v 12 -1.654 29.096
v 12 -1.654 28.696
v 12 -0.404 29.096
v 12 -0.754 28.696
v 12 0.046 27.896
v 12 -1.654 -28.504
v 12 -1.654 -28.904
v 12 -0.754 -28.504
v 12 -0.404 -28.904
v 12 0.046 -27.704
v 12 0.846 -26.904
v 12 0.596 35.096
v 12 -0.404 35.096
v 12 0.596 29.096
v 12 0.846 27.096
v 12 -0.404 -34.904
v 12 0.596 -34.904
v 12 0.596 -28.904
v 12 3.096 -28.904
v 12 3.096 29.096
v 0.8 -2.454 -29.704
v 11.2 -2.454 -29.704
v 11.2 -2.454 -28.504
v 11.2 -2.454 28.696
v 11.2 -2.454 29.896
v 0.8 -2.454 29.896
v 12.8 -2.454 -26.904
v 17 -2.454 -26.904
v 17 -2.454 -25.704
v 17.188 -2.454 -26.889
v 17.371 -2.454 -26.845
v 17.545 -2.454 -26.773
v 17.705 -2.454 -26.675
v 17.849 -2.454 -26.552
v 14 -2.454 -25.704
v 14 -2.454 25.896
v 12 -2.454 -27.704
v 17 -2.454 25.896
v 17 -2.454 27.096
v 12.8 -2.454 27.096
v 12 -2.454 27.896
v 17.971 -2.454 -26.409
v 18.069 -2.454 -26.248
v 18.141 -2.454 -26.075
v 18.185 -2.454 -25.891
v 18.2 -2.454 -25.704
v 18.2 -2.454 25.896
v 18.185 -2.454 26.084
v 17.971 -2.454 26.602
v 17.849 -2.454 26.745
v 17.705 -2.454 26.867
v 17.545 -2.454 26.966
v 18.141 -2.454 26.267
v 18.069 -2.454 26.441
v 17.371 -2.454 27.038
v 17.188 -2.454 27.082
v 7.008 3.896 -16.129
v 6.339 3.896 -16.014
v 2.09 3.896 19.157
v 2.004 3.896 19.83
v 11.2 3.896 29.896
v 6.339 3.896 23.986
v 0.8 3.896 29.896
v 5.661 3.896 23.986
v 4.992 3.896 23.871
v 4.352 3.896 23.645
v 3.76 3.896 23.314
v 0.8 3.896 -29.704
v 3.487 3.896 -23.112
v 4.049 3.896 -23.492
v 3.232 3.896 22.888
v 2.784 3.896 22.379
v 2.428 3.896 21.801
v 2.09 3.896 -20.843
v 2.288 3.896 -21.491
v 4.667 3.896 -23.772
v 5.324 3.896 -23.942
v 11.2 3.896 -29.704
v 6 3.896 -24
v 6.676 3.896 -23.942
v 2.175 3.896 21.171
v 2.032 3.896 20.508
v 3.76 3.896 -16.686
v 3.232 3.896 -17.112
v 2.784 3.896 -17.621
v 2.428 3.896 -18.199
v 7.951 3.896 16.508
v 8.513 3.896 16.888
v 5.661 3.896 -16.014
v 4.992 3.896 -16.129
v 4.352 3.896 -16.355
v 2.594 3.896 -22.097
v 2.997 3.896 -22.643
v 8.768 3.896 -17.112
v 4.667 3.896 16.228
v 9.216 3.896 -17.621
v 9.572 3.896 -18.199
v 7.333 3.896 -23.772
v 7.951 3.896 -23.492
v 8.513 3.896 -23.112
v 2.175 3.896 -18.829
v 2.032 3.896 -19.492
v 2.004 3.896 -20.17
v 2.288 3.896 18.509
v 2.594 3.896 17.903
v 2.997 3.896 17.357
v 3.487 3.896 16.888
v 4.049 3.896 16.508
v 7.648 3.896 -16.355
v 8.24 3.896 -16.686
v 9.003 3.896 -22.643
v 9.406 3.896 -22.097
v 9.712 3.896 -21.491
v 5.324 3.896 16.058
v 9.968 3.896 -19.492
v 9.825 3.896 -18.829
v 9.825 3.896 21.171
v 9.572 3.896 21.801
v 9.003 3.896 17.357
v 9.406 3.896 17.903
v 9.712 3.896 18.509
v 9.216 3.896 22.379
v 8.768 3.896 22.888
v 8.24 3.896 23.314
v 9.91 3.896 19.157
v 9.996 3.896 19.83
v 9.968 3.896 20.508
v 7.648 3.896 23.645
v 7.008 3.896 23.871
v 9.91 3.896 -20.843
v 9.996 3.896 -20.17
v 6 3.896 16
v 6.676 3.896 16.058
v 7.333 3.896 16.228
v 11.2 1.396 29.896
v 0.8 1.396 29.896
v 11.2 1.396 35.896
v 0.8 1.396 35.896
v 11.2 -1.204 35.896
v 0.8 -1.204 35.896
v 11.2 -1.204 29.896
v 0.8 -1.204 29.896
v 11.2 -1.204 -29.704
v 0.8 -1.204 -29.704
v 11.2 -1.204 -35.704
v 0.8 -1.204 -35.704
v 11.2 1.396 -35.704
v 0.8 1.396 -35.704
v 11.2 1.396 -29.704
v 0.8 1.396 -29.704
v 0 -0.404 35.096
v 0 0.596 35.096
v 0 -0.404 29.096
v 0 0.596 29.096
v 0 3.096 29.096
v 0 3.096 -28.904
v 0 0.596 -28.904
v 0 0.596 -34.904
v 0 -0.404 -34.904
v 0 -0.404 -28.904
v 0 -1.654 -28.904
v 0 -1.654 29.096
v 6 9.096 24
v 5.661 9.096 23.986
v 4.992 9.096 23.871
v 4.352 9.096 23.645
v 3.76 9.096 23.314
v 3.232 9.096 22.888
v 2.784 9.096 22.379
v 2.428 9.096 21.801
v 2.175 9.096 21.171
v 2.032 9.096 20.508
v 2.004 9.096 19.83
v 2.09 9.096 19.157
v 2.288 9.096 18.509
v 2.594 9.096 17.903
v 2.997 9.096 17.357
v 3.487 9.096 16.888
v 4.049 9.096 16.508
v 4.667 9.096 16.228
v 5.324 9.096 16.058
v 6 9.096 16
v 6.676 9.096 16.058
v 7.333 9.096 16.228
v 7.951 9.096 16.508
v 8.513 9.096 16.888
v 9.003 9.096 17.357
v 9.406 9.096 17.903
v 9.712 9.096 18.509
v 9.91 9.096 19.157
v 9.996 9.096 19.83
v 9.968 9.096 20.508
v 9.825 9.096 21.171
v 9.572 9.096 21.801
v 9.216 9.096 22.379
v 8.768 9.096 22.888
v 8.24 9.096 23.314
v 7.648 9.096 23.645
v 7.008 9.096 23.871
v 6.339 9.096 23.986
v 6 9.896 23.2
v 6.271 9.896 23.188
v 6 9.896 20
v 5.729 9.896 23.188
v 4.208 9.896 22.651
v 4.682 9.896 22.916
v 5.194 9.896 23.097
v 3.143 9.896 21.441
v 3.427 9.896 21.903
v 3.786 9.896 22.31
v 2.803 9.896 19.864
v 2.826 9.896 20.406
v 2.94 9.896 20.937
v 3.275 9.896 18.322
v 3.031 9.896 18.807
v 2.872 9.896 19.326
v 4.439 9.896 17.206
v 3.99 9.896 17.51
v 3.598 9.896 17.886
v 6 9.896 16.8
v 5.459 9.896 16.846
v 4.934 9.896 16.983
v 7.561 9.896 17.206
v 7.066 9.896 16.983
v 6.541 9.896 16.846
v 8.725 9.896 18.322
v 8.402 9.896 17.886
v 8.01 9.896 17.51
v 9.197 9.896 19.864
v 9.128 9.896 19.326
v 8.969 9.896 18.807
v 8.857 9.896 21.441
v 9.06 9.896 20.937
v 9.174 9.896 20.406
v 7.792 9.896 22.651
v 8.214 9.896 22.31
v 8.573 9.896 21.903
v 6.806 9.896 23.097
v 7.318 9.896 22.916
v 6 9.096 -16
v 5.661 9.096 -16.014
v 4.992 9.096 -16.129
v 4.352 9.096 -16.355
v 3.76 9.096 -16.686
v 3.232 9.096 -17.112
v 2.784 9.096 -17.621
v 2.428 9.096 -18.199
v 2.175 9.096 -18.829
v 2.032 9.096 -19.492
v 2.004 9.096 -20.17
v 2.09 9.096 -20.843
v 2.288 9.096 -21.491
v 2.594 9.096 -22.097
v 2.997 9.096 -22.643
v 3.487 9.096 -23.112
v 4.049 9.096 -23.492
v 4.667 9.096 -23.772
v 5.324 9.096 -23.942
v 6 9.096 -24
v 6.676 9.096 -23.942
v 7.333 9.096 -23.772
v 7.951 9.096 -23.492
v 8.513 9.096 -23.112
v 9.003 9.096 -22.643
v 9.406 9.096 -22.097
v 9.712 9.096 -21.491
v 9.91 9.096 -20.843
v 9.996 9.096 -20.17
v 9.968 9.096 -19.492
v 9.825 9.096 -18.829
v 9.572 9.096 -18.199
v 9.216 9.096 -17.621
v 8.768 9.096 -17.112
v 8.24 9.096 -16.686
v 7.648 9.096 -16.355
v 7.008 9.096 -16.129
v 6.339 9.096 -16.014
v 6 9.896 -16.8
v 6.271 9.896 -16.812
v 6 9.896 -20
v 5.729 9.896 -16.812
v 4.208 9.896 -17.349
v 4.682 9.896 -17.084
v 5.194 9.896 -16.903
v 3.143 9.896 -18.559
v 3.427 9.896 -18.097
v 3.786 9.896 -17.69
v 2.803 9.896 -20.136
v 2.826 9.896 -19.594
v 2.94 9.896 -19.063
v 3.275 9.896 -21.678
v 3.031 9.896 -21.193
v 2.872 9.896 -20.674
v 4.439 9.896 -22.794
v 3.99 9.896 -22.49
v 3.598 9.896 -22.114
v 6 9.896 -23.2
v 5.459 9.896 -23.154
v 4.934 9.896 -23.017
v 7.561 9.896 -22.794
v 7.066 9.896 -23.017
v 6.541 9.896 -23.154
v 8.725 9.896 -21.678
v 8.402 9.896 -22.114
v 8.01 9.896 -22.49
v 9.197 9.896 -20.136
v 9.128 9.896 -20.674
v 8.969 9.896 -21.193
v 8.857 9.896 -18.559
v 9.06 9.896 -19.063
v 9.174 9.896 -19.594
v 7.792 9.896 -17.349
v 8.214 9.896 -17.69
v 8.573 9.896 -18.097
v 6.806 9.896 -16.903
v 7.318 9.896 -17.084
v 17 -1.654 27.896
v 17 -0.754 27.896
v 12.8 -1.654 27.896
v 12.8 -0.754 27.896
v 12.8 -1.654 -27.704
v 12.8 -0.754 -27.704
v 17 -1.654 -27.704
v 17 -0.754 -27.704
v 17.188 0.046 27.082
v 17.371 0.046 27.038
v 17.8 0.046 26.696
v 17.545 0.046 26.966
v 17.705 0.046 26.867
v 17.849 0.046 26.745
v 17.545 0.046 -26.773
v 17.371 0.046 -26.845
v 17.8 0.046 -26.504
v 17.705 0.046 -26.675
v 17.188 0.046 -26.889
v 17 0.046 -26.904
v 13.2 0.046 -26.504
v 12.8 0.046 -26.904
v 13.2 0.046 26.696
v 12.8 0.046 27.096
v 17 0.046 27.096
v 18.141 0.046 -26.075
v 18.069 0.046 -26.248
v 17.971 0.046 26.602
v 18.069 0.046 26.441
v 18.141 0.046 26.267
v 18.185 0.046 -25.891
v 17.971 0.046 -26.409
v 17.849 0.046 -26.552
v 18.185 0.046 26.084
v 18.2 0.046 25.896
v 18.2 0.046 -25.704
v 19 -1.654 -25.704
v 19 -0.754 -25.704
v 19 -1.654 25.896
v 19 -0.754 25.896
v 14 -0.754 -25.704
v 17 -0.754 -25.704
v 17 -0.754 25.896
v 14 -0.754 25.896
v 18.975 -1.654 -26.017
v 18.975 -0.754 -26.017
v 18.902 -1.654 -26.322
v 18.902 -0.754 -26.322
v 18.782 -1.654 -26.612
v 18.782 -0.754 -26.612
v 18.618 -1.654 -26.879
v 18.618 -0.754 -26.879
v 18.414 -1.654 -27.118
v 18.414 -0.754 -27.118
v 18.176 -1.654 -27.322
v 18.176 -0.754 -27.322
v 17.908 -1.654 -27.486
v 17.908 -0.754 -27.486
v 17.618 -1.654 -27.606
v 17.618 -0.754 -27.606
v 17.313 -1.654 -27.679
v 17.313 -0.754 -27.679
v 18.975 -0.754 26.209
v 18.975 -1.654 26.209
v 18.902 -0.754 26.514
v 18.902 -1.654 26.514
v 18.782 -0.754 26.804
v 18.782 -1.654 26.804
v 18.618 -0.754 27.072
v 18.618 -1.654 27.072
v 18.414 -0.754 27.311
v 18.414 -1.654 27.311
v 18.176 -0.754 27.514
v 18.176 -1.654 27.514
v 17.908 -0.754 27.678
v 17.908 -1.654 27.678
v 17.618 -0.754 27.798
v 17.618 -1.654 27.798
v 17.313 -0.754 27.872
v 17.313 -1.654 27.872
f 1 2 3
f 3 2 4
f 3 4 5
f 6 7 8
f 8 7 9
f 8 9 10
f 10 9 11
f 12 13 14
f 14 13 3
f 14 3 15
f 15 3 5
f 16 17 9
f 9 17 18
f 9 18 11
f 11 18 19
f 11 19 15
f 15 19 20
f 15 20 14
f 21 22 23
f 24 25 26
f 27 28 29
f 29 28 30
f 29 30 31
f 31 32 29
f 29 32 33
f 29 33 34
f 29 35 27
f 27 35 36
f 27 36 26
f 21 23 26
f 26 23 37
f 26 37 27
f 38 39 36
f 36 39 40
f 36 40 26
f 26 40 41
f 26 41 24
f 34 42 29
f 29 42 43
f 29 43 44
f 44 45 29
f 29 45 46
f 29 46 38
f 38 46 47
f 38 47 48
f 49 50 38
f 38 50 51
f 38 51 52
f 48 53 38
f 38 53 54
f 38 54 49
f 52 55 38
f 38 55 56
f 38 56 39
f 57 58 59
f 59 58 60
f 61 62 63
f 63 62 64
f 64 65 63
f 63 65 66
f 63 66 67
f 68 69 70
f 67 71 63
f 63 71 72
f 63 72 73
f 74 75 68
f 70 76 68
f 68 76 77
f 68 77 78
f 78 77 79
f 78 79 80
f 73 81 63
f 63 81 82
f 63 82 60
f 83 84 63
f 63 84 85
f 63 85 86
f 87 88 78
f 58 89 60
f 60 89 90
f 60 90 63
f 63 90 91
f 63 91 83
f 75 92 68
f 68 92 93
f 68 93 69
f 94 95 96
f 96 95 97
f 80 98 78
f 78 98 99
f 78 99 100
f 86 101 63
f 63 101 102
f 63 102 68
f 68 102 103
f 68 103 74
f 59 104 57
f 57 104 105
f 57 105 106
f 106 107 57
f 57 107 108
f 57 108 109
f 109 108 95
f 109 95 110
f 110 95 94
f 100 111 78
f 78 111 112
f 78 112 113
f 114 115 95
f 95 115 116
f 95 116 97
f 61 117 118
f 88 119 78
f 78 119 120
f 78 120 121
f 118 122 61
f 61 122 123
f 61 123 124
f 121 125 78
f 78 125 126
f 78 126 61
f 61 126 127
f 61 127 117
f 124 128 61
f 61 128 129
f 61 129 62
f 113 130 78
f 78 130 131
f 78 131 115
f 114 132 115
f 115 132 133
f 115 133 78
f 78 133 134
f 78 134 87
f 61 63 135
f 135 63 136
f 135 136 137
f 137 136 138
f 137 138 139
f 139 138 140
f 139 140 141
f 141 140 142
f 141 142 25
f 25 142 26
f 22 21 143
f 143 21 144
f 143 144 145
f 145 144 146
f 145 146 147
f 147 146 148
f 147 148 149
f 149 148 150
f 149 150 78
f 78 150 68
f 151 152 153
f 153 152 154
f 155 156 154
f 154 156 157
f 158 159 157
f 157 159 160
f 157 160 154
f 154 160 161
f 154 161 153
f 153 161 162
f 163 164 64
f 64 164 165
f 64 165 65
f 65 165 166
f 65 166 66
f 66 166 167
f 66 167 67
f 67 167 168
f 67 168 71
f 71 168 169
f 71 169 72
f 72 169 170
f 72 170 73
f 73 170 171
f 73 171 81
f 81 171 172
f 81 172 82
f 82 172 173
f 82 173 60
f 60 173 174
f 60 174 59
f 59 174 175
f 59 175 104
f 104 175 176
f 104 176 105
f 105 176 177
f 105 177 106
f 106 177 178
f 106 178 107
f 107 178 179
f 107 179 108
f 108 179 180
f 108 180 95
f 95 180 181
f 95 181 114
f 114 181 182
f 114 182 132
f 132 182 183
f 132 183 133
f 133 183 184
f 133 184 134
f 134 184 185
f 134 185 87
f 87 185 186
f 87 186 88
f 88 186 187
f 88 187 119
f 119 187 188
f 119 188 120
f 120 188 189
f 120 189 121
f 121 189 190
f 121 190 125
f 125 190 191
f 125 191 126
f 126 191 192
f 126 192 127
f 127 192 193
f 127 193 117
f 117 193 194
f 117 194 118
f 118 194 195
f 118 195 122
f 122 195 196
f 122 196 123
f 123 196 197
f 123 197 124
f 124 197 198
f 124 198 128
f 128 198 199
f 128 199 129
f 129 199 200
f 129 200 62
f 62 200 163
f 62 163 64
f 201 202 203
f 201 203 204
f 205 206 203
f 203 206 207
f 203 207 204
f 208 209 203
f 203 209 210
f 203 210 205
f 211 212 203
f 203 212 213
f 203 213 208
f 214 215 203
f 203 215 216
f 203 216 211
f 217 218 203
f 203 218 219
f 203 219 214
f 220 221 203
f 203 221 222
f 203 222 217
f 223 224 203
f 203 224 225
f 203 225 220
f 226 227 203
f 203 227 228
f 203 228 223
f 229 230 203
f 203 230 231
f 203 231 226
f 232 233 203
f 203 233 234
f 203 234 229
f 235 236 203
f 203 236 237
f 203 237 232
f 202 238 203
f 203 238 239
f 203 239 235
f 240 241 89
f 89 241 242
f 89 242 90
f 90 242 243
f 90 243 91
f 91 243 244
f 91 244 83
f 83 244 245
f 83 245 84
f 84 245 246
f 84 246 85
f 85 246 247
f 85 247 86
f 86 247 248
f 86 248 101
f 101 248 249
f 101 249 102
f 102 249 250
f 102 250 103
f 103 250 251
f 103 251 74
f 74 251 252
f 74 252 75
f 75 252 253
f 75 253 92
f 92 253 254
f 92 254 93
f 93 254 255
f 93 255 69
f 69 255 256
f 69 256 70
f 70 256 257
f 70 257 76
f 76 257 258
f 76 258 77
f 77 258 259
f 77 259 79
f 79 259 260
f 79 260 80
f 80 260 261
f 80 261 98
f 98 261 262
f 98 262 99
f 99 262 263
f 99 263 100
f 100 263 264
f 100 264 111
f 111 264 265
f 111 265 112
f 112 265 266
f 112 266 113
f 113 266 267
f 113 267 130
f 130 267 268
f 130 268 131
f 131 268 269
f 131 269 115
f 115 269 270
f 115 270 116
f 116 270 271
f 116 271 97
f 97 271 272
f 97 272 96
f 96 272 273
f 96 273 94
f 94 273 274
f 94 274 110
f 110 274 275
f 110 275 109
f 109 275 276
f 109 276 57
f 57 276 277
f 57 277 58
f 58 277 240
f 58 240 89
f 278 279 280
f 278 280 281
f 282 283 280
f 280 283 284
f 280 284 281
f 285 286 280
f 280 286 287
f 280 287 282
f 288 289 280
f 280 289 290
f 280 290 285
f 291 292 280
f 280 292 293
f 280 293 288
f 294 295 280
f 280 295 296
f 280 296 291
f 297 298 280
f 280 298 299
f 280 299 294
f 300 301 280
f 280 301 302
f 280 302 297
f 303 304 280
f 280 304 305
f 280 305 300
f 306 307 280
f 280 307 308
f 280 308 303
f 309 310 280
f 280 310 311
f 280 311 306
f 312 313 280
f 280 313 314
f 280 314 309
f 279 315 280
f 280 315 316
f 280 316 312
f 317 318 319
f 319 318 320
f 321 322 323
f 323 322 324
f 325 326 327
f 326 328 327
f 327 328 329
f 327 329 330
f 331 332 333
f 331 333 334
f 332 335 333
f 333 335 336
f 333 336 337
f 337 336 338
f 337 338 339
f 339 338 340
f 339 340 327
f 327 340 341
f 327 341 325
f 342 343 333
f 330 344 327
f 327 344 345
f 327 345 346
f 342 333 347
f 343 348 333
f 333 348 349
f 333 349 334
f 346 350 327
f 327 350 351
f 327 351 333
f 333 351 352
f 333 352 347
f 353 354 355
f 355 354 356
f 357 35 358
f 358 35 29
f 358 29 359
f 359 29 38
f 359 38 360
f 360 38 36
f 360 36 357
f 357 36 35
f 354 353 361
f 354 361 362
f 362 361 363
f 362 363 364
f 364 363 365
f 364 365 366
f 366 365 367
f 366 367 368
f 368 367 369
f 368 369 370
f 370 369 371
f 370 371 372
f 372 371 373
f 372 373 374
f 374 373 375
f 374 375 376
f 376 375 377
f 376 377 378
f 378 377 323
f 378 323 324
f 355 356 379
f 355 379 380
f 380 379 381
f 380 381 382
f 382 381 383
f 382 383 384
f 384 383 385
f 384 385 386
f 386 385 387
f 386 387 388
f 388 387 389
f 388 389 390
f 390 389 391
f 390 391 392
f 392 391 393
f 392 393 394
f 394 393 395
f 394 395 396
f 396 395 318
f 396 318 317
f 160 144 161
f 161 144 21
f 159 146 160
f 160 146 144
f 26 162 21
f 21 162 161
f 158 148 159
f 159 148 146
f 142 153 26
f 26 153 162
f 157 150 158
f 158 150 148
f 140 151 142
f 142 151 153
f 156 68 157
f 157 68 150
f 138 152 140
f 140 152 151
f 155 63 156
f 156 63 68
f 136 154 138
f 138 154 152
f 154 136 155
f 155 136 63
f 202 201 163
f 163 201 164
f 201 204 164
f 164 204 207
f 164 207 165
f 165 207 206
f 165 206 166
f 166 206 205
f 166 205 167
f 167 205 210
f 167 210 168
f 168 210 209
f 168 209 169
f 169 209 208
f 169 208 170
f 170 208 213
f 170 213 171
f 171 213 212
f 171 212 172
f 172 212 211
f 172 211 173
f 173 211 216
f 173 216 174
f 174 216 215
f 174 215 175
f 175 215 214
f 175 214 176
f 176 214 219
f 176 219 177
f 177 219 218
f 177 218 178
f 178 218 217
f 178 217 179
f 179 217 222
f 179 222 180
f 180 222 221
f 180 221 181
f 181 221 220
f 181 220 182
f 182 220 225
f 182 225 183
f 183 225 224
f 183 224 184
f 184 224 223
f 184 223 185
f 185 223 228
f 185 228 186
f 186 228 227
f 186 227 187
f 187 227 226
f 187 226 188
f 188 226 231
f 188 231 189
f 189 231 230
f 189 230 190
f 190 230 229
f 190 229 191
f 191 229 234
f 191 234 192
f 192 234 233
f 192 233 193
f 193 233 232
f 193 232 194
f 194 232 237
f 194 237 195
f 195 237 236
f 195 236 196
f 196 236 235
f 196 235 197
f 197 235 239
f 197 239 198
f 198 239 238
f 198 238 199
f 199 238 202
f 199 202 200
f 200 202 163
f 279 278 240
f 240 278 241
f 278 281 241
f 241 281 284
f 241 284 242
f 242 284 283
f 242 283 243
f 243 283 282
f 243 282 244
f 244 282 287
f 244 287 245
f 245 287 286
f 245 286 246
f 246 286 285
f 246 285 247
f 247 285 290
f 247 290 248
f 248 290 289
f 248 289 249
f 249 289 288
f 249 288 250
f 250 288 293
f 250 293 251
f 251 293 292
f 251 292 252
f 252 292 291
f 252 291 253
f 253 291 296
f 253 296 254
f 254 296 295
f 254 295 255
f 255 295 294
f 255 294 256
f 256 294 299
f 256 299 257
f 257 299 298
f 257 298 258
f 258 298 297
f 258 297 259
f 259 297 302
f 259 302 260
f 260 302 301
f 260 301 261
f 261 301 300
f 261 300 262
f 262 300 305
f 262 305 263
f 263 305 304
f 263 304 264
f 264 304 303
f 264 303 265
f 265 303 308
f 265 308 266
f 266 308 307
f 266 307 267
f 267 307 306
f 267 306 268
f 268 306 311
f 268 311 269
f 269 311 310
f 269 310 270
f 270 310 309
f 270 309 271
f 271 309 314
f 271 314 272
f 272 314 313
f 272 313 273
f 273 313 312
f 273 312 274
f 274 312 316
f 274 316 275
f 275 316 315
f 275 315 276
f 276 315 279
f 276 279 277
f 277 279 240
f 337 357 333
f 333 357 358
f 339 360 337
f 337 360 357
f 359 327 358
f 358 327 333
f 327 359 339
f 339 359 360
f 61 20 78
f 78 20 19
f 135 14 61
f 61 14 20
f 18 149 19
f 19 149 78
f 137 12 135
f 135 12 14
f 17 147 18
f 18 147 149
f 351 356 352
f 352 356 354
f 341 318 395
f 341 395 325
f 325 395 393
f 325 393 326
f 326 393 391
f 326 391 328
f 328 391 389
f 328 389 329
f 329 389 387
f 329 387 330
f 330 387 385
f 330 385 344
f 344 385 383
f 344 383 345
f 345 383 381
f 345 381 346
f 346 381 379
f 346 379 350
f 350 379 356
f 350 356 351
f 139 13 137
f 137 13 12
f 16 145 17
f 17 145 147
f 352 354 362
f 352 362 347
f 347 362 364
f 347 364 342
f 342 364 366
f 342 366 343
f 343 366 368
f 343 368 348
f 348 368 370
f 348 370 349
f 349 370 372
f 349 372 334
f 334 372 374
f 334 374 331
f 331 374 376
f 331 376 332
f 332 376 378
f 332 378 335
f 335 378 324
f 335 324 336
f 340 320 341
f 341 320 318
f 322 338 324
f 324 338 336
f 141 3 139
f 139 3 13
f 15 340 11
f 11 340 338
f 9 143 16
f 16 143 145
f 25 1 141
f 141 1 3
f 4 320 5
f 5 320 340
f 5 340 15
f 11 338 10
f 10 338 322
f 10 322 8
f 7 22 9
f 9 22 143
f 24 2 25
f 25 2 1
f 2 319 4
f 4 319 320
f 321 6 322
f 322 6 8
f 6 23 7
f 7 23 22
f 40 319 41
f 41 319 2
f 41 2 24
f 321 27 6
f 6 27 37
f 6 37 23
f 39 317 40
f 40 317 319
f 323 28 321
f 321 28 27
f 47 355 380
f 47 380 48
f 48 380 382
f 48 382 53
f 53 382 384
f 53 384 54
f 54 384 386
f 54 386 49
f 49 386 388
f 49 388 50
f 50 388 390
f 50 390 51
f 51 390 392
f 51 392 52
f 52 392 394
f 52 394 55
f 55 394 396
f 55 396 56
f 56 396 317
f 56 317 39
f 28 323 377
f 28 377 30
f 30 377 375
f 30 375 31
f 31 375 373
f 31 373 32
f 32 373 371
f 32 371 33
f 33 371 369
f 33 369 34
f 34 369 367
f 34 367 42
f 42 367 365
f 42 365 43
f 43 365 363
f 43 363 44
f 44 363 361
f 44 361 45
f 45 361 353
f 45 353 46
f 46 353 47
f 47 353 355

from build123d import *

# Parameters (mm, degrees)
BOSS_EXTRUDE1_DEPTH = 12
SKETCH2_R           = 4
BOSS_EXTRUDE2_DEPTH = 6
SKETCH3_W           = 55.6
SKETCH3_H           = 2.5
BOSS_EXTRUDE3_DEPTH = 7
SKETCH5_W           = 3
SKETCH5_H           = 51.6
CUT_EXTRUDE1_DEPTH  = 42.791956142
FILLET3_R           = 2
CHAMFER1_SIZE       = 0.8
CHAMFER2_SIZE       = 0.8
CHAMFER3_SIZE       = 0.8


with BuildPart() as part:
    # Sketch1 → Boss-Extrude1 (new body)
    with BuildSketch(Plane(origin=(0, 0, 0), x_dir=(0, 0, -1), z_dir=(1, 0, 0))):
        Polygon((-29.89631037, 3.89631037), (-29.89631037, 1.39631037), (-35.89631037, 1.39631037), (-35.89631037, -1.20368963), (-29.89631037, -1.20368963), (-29.89631037, -2.45368963), (29.70368963, -2.45368963), (29.70368963, -1.20368963), (35.70368963, -1.20368963), (35.70368963, 1.39631037), (29.70368963, 1.39631037), (29.70368963, 3.89631037), align=None)
    extrude(amount=BOSS_EXTRUDE1_DEPTH)

    # Sketch2 → Boss-Extrude2 (add)
    with BuildSketch(Plane(origin=(0, 3.89631037, 0), x_dir=(1, 0, 0), z_dir=(0, 1, 0))):
        with Locations(Location((6, -20, 0), (0, 0, 90))):
            Circle(SKETCH2_R)
        with Locations(Location((6, 20, 0), (0, 0, 90))):
            Circle(SKETCH2_R)
    extrude(amount=BOSS_EXTRUDE2_DEPTH)

    # Sketch3 → Boss-Extrude3 (add)
    with BuildSketch(Plane(origin=(12, 0, 0), x_dir=(0, 0, -1), z_dir=(1, 0, 0))):
        with Locations((-0.09631037, -1.20368963)):
            Rectangle(SKETCH3_W, SKETCH3_H)
    extrude(amount=BOSS_EXTRUDE3_DEPTH)

    # Sketch5 → Cut-Extrude1 (cut, through all)
    with BuildSketch(Plane(origin=(0, 0.04631037, 0), x_dir=(1, 0, 0), z_dir=(0, 1, 0))):
        with Locations((15.5, -0.09631037)):
            Rectangle(SKETCH5_W, SKETCH5_H)
    extrude(amount=-CUT_EXTRUDE1_DEPTH, mode=Mode.SUBTRACT)

    # Fillet3
    fillet3_edges = [part.edges().sort_by_distance(p)[0] for p in [
        (19, -1.20368963, 27.89631037),
        (19, -1.20368963, -27.70368963),
    ]]
    fillet(fillet3_edges, radius=FILLET3_R)

    # Chamfer1
    chamfer1_edges = [part.edges().sort_by_distance(p)[0] for p in [
        (0, 2.64631037, -29.70368963),
        (0, 1.39631037, -32.70368963),
        (0, 0.09631037, -35.70368963),
        (0, -1.20368963, -32.70368963),
        (0, -1.82868963, -29.70368963),
        (0, -2.45368963, 0.09631037),
        (0, -1.82868963, 29.89631037),
        (0, -1.20368963, 32.89631037),
        (0, 0.09631037, 35.89631037),
        (0, 1.39631037, 32.89631037),
        (0, 2.64631037, 29.89631037),
        (0, 3.89631037, 0.09631037),
    ]]
    chamfer(chamfer1_edges, length=CHAMFER1_SIZE)

    # Chamfer2
    chamfer2_edges = [part.edges().sort_by_distance(p)[0] for p in [
        (6, 9.89631037, 24),
        (6, 9.89631037, -16),
    ]]
    chamfer(chamfer2_edges, length=CHAMFER2_SIZE)

    # Chamfer3
    chamfer3_edges = [part.edges().sort_by_distance(p)[0] for p in [
        (12, 1.39631037, 32.89631037),
        (12, 0.09631037, 35.89631037),
        (12, -1.20368963, 32.89631037),
        (12, -1.82868963, 29.89631037),
        (12, -2.45368963, 28.89631037),
        (12, -1.82868963, -29.70368963),
        (12, -1.20368963, -32.70368963),
        (12, 0.09631037, -35.70368963),
        (12, 1.39631037, -32.70368963),
        (12, -2.45368963, -28.70368963),
        (12, -1.20368963, 27.89631037),
        (12, -1.20368963, -27.70368963),
        (12, 2.64631037, -29.70368963),
        (12, 0.04631037, 0.09631037),
        (12, 3.89631037, 0.09631037),
        (15.5, 0.04631037, -25.70368963),
        (14, 0.04631037, 0.09631037),
        (15.5, 0.04631037, 25.89631037),
        (17, 0.04631037, 0.09631037),
        (19, -2.45368963, 0.09631037),
        (19, 0.04631037, 0.09631037),
        (14.5, 0.04631037, 27.89631037),
        (14.5, 0.04631037, -27.70368963),
        (18.414213562, 0.04631037, 27.310523932),
        (18.414213562, 0.04631037, -27.117903192),
        (14.5, -2.45368963, -27.70368963),
        (14.5, -2.45368963, 27.89631037),
        (18.414213562, -2.45368963, 27.310523932),
        (18.414213562, -2.45368963, -27.117903192),
        (12, 2.64631037, 29.89631037),
    ]]
    chamfer(chamfer3_edges, length=CHAMFER3_SIZE)


solid = part.part
